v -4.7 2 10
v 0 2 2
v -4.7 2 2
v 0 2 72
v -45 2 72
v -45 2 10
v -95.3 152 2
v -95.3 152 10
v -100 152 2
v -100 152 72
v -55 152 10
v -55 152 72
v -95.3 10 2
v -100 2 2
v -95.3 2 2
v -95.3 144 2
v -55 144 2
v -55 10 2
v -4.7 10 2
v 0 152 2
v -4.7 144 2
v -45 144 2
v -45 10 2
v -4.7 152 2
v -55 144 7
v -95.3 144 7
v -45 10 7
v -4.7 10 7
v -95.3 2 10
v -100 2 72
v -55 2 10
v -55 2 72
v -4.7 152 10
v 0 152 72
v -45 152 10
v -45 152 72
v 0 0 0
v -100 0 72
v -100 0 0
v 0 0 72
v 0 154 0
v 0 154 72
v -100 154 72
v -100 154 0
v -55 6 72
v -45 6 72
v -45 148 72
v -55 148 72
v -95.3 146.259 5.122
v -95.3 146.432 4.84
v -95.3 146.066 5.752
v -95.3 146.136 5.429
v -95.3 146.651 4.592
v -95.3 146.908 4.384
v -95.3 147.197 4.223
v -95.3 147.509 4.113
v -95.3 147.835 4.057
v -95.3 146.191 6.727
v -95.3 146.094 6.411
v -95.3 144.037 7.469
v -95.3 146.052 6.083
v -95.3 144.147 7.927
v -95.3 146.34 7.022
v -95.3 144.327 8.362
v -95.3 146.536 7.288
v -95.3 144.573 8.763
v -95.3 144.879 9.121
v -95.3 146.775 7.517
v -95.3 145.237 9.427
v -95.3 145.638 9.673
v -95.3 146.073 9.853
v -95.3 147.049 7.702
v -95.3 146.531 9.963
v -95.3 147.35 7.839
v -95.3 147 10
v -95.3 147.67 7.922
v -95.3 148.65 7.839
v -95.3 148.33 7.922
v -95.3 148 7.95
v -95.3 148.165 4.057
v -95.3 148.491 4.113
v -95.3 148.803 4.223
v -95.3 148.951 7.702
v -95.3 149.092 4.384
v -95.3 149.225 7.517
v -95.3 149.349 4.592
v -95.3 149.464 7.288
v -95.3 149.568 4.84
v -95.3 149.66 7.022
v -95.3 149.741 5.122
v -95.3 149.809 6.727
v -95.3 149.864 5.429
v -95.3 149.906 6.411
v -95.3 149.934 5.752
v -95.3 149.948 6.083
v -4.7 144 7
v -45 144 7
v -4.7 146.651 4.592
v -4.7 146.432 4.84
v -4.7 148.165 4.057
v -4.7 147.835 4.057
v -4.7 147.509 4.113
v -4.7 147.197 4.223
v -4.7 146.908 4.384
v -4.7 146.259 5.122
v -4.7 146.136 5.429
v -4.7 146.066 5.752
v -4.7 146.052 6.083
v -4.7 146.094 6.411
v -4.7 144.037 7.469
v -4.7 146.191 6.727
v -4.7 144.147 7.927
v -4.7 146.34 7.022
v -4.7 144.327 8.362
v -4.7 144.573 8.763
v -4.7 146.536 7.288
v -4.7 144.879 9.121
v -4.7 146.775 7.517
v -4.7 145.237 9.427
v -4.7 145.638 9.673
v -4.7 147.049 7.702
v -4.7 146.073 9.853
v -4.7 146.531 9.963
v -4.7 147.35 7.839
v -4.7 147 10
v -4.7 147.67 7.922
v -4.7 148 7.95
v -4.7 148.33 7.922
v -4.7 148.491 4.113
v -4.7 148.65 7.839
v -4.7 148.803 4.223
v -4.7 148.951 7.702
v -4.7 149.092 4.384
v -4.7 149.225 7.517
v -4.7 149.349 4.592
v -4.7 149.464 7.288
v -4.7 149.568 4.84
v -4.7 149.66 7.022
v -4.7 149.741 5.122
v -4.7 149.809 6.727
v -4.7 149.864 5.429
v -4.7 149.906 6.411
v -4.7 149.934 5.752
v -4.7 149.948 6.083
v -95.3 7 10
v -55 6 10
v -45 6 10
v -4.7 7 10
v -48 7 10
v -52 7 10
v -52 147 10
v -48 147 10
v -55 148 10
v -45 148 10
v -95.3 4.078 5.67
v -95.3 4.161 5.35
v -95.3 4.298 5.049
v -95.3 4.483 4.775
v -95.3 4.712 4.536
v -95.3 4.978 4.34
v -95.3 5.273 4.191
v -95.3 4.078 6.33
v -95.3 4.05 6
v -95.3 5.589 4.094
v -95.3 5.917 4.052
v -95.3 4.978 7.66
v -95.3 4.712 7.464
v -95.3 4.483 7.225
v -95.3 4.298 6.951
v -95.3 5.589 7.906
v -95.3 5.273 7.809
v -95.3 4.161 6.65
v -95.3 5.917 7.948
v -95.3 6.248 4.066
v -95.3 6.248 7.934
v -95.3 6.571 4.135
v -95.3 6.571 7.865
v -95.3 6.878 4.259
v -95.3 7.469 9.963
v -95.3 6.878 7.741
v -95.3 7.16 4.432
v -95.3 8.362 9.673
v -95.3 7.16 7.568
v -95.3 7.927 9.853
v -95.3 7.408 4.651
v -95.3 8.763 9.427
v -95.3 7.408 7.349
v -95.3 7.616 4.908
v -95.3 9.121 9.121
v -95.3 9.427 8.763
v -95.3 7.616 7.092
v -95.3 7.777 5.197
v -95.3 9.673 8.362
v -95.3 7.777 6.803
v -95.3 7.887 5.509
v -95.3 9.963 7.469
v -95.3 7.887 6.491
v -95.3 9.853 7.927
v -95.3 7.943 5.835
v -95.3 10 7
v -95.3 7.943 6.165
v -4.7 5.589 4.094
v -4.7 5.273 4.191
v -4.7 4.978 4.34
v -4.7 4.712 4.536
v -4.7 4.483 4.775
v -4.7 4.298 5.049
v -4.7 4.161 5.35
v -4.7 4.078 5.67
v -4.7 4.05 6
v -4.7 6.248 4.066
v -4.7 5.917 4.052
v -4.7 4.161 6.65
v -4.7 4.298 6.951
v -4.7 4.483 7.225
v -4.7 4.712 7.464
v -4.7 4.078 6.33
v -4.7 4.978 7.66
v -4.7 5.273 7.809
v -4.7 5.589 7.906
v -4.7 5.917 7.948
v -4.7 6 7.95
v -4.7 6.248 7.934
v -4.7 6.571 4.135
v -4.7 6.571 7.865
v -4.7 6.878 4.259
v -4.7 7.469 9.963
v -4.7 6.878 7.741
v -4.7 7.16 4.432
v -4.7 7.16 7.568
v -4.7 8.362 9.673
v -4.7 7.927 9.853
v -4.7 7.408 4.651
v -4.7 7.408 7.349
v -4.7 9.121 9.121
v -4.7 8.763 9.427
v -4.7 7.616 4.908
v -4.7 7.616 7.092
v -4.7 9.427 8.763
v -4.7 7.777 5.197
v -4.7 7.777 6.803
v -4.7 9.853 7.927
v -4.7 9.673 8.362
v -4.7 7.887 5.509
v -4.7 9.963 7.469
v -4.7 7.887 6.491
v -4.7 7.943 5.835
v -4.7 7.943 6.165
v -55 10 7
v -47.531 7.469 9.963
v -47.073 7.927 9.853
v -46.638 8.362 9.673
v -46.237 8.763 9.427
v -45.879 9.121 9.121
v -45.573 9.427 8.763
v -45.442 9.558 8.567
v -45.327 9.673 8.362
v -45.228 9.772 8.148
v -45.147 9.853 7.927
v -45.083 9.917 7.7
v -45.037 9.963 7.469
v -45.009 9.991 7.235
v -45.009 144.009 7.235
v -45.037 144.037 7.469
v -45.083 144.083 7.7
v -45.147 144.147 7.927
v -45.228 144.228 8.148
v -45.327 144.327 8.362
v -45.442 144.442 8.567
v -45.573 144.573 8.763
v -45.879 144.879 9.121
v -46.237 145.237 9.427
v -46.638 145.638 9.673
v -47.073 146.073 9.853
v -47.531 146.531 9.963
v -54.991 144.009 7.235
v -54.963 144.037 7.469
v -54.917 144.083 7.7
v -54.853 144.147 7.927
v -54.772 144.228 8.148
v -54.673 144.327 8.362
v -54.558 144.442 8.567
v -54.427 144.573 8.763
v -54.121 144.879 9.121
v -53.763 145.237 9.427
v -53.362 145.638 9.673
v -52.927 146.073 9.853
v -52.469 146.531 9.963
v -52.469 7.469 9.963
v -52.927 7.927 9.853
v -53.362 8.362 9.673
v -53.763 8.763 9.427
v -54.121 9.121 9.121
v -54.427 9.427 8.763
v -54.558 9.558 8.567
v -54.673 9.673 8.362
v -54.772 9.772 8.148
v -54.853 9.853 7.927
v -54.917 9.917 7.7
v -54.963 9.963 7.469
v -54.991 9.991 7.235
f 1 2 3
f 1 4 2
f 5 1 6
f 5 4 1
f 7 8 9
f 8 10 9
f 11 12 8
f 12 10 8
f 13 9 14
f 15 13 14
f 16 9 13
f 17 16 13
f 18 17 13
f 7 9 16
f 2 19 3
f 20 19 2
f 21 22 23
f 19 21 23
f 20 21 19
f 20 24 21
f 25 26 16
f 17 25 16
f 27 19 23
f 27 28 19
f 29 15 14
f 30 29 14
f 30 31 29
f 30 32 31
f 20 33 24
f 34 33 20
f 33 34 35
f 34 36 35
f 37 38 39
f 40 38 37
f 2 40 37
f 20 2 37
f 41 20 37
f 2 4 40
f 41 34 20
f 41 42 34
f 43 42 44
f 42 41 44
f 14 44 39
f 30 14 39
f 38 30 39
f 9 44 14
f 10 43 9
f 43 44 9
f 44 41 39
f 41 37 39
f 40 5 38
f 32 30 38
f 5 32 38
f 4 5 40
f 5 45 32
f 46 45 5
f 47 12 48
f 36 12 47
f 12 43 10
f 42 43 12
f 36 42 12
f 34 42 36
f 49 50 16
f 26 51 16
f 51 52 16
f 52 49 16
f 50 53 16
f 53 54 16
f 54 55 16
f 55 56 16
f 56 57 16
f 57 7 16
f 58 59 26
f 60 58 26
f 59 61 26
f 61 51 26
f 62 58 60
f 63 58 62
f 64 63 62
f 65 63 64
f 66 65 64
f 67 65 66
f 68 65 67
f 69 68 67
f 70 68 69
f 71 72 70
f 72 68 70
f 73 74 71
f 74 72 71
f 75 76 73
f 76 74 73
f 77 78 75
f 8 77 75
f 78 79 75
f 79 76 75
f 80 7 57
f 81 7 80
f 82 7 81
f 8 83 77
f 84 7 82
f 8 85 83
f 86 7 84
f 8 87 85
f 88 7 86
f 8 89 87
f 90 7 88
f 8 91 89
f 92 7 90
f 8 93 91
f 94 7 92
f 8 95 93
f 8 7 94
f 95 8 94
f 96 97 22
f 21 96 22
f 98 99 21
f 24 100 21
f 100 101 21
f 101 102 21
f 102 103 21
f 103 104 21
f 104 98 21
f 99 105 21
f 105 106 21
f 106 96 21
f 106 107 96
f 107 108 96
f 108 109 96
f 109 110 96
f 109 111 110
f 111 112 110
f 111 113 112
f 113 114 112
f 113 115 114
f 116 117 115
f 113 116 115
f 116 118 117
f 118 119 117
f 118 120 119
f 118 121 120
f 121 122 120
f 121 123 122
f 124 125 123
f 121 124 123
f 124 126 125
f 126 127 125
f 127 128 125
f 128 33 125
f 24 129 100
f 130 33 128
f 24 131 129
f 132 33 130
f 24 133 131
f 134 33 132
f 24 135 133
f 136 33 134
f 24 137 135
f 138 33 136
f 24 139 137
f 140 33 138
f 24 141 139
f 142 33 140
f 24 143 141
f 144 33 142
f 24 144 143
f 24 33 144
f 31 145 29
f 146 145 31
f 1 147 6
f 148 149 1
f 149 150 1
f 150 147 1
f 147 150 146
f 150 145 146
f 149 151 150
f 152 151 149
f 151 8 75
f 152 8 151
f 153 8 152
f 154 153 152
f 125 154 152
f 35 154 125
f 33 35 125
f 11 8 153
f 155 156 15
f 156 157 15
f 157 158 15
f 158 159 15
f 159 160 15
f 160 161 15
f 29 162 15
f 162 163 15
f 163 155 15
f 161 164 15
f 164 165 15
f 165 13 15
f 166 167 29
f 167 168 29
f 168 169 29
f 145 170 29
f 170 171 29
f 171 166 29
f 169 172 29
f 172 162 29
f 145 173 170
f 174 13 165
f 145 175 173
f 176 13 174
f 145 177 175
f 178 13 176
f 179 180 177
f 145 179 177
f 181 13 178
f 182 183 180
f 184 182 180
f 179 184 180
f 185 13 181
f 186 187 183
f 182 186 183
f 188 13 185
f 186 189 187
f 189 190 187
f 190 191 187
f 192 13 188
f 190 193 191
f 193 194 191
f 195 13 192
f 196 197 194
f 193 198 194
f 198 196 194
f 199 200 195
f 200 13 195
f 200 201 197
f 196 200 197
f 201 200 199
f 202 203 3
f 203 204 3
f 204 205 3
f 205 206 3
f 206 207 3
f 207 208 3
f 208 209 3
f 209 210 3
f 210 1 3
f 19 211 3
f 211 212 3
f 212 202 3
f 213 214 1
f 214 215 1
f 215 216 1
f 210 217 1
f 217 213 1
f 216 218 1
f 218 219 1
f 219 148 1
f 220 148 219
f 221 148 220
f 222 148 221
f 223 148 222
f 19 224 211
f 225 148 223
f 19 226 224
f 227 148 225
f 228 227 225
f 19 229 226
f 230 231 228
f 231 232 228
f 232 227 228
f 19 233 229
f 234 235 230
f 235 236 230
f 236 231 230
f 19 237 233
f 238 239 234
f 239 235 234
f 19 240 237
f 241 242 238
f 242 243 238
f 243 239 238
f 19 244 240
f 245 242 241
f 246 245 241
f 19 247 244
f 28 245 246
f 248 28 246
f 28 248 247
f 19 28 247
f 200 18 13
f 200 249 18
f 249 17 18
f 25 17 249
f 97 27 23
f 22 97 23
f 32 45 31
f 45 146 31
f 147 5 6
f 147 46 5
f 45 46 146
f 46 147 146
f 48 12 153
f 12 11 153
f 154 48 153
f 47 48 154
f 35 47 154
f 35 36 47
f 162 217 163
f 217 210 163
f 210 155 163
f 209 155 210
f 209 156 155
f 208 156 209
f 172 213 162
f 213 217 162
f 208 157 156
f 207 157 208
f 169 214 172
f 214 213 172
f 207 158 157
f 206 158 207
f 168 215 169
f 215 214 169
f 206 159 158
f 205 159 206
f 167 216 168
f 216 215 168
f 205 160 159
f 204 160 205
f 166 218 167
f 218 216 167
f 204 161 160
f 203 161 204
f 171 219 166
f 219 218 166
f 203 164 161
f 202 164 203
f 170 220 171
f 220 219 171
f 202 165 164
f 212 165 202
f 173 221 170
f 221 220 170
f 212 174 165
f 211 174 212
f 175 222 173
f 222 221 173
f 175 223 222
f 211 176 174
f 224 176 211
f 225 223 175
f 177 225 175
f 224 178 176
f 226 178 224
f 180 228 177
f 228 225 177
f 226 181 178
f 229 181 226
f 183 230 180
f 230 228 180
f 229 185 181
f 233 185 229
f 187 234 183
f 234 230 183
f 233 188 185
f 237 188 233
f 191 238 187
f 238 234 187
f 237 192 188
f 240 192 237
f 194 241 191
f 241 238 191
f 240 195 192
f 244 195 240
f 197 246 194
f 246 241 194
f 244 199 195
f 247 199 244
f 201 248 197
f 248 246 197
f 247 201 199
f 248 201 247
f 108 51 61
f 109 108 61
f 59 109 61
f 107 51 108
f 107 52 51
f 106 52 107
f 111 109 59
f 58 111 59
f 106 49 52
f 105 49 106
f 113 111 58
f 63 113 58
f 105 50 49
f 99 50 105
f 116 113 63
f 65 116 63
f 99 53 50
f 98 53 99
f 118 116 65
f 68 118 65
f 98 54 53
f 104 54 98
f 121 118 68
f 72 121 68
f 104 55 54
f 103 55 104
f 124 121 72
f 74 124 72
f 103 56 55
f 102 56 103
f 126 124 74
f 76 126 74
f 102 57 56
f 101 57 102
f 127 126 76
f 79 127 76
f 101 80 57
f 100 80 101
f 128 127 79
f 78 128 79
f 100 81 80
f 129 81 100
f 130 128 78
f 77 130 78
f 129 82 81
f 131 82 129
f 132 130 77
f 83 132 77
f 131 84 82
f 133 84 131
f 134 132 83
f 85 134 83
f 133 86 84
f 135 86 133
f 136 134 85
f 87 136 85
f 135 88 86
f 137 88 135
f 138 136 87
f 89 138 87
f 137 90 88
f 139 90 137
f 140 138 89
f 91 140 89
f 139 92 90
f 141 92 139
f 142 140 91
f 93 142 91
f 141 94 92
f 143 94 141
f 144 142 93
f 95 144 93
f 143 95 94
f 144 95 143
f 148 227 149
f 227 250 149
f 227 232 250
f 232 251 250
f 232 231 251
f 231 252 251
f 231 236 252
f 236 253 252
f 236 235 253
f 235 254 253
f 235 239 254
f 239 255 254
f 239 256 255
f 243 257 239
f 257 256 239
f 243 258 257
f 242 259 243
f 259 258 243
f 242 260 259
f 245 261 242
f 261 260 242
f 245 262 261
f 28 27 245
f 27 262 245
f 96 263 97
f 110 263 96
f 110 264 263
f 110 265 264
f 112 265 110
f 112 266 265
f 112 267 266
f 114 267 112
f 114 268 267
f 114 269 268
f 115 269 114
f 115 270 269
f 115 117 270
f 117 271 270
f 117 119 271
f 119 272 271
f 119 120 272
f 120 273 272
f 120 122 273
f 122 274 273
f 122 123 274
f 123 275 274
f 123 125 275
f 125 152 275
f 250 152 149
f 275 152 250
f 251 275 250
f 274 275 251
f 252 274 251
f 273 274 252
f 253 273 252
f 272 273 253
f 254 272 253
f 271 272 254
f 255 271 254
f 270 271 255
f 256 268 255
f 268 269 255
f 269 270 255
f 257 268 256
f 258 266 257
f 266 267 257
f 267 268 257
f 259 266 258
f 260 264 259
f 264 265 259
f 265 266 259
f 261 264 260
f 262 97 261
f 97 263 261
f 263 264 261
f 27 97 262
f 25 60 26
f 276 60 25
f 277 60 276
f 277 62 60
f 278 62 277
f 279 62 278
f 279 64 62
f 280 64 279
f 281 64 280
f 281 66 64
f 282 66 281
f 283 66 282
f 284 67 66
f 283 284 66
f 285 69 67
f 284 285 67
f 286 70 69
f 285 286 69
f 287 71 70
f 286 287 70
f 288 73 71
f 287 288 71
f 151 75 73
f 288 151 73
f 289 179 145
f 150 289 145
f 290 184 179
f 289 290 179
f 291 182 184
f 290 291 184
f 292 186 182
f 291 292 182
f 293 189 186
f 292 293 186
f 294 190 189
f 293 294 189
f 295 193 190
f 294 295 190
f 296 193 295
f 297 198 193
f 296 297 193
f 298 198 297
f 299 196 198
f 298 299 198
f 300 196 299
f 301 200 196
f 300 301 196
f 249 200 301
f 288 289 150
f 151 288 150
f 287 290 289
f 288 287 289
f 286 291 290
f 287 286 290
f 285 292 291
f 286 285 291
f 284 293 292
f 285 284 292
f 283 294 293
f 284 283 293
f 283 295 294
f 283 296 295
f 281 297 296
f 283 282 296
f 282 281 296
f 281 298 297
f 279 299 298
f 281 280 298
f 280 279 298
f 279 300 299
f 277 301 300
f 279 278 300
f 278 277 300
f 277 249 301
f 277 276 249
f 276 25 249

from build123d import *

# Parameters (mm, degrees)
SKETCH1_W           = 154
SKETCH1_H           = 100
BOSS_EXTRUDE1_DEPTH = 2
SKETCH2_W           = 100
SKETCH2_H           = 2
BOSS_EXTRUDE2_DEPTH = 70
SKETCH3_W           = 90.6
SKETCH3_H           = 8
BOSS_EXTRUDE3_DEPTH = 8
SKETCH4_W           = 10
SKETCH4_H           = 134
BOSS_EXTRUDE4_DEPTH = 8
SKETCH5_W           = 10
SKETCH5_H           = 4
BOSS_EXTRUDE5_DEPTH = 62
SKETCH6_R           = 1.95
CUT_EXTRUDE1_DEPTH  = 195.889943301
SKETCH7_R           = 1.95
CUT_EXTRUDE2_DEPTH  = 195.889943301
FILLET1_R           = 3


with BuildPart() as part:
    # Sketch1 → Boss-Extrude1 (new body)
    with BuildSketch(Plane(origin=(0, 0, 0), x_dir=(0, 1, 0), z_dir=(0, 0, 1))):
        with Locations((77, 50)):
            Rectangle(SKETCH1_W, SKETCH1_H)
    extrude(amount=BOSS_EXTRUDE1_DEPTH)

    # Sketch2 → Boss-Extrude2 (add)
    with BuildSketch(Plane.XY.offset(2)):
        with Locations((-50, 153)):
            Rectangle(SKETCH2_W, SKETCH2_H)
        with Locations((-50, 1)):
            Rectangle(SKETCH2_W, SKETCH2_H)
    extrude(amount=BOSS_EXTRUDE2_DEPTH)

    # Sketch3 → Boss-Extrude3 (add)
    with BuildSketch(Plane.XY.offset(2)):
        with Locations((-50, 148)):
            Rectangle(SKETCH3_W, SKETCH3_H)
        with Locations((-50, 6)):
            Rectangle(SKETCH3_W, SKETCH3_H)
    extrude(amount=BOSS_EXTRUDE3_DEPTH)

    # Sketch4 → Boss-Extrude4 (add)
    with BuildSketch(Plane.XY.offset(2)):
        with Locations((-50, 77)):
            Rectangle(SKETCH4_W, SKETCH4_H)
    extrude(amount=BOSS_EXTRUDE4_DEPTH)

    # Sketch5 → Boss-Extrude5 (add)
    with BuildSketch(Plane.XY.offset(10)):
        with Locations((-50, 150)):
            Rectangle(SKETCH5_W, SKETCH5_H)
        with Locations((-50, 4)):
            Rectangle(SKETCH5_W, SKETCH5_H)
    extrude(amount=BOSS_EXTRUDE5_DEPTH)

    # Sketch6 → Cut-Extrude1 (cut, through all)
    with BuildSketch(Plane(origin=(-95.3, 0, 0), x_dir=(0, -1, 0), z_dir=(-1, 0, 0))):
        with Locations((-6, 6)):
            Circle(SKETCH6_R)
    extrude(amount=-CUT_EXTRUDE1_DEPTH, mode=Mode.SUBTRACT)

    # Sketch7 → Cut-Extrude2 (cut, through all)
    with BuildSketch(Plane(origin=(-95.3, 0, 0), x_dir=(0, -1, 0), z_dir=(-1, 0, 0))):
        with Locations(Location((-148, 6, 0), (0, 0, 90))):
            Circle(SKETCH7_R)
    extrude(amount=-CUT_EXTRUDE2_DEPTH, mode=Mode.SUBTRACT)

    # Fillet1
    fillet1_edges = [part.edges().sort_by_distance(p)[0] for p in [
        (-75.15, 144, 10),
        (-24.85, 10, 10),
        (-75.15, 10, 10),
        (-24.85, 144, 10),
        (-55, 77, 10),
        (-45, 77, 10),
    ]]
    fillet(fillet1_edges, radius=FILLET1_R)


solid = part.part
